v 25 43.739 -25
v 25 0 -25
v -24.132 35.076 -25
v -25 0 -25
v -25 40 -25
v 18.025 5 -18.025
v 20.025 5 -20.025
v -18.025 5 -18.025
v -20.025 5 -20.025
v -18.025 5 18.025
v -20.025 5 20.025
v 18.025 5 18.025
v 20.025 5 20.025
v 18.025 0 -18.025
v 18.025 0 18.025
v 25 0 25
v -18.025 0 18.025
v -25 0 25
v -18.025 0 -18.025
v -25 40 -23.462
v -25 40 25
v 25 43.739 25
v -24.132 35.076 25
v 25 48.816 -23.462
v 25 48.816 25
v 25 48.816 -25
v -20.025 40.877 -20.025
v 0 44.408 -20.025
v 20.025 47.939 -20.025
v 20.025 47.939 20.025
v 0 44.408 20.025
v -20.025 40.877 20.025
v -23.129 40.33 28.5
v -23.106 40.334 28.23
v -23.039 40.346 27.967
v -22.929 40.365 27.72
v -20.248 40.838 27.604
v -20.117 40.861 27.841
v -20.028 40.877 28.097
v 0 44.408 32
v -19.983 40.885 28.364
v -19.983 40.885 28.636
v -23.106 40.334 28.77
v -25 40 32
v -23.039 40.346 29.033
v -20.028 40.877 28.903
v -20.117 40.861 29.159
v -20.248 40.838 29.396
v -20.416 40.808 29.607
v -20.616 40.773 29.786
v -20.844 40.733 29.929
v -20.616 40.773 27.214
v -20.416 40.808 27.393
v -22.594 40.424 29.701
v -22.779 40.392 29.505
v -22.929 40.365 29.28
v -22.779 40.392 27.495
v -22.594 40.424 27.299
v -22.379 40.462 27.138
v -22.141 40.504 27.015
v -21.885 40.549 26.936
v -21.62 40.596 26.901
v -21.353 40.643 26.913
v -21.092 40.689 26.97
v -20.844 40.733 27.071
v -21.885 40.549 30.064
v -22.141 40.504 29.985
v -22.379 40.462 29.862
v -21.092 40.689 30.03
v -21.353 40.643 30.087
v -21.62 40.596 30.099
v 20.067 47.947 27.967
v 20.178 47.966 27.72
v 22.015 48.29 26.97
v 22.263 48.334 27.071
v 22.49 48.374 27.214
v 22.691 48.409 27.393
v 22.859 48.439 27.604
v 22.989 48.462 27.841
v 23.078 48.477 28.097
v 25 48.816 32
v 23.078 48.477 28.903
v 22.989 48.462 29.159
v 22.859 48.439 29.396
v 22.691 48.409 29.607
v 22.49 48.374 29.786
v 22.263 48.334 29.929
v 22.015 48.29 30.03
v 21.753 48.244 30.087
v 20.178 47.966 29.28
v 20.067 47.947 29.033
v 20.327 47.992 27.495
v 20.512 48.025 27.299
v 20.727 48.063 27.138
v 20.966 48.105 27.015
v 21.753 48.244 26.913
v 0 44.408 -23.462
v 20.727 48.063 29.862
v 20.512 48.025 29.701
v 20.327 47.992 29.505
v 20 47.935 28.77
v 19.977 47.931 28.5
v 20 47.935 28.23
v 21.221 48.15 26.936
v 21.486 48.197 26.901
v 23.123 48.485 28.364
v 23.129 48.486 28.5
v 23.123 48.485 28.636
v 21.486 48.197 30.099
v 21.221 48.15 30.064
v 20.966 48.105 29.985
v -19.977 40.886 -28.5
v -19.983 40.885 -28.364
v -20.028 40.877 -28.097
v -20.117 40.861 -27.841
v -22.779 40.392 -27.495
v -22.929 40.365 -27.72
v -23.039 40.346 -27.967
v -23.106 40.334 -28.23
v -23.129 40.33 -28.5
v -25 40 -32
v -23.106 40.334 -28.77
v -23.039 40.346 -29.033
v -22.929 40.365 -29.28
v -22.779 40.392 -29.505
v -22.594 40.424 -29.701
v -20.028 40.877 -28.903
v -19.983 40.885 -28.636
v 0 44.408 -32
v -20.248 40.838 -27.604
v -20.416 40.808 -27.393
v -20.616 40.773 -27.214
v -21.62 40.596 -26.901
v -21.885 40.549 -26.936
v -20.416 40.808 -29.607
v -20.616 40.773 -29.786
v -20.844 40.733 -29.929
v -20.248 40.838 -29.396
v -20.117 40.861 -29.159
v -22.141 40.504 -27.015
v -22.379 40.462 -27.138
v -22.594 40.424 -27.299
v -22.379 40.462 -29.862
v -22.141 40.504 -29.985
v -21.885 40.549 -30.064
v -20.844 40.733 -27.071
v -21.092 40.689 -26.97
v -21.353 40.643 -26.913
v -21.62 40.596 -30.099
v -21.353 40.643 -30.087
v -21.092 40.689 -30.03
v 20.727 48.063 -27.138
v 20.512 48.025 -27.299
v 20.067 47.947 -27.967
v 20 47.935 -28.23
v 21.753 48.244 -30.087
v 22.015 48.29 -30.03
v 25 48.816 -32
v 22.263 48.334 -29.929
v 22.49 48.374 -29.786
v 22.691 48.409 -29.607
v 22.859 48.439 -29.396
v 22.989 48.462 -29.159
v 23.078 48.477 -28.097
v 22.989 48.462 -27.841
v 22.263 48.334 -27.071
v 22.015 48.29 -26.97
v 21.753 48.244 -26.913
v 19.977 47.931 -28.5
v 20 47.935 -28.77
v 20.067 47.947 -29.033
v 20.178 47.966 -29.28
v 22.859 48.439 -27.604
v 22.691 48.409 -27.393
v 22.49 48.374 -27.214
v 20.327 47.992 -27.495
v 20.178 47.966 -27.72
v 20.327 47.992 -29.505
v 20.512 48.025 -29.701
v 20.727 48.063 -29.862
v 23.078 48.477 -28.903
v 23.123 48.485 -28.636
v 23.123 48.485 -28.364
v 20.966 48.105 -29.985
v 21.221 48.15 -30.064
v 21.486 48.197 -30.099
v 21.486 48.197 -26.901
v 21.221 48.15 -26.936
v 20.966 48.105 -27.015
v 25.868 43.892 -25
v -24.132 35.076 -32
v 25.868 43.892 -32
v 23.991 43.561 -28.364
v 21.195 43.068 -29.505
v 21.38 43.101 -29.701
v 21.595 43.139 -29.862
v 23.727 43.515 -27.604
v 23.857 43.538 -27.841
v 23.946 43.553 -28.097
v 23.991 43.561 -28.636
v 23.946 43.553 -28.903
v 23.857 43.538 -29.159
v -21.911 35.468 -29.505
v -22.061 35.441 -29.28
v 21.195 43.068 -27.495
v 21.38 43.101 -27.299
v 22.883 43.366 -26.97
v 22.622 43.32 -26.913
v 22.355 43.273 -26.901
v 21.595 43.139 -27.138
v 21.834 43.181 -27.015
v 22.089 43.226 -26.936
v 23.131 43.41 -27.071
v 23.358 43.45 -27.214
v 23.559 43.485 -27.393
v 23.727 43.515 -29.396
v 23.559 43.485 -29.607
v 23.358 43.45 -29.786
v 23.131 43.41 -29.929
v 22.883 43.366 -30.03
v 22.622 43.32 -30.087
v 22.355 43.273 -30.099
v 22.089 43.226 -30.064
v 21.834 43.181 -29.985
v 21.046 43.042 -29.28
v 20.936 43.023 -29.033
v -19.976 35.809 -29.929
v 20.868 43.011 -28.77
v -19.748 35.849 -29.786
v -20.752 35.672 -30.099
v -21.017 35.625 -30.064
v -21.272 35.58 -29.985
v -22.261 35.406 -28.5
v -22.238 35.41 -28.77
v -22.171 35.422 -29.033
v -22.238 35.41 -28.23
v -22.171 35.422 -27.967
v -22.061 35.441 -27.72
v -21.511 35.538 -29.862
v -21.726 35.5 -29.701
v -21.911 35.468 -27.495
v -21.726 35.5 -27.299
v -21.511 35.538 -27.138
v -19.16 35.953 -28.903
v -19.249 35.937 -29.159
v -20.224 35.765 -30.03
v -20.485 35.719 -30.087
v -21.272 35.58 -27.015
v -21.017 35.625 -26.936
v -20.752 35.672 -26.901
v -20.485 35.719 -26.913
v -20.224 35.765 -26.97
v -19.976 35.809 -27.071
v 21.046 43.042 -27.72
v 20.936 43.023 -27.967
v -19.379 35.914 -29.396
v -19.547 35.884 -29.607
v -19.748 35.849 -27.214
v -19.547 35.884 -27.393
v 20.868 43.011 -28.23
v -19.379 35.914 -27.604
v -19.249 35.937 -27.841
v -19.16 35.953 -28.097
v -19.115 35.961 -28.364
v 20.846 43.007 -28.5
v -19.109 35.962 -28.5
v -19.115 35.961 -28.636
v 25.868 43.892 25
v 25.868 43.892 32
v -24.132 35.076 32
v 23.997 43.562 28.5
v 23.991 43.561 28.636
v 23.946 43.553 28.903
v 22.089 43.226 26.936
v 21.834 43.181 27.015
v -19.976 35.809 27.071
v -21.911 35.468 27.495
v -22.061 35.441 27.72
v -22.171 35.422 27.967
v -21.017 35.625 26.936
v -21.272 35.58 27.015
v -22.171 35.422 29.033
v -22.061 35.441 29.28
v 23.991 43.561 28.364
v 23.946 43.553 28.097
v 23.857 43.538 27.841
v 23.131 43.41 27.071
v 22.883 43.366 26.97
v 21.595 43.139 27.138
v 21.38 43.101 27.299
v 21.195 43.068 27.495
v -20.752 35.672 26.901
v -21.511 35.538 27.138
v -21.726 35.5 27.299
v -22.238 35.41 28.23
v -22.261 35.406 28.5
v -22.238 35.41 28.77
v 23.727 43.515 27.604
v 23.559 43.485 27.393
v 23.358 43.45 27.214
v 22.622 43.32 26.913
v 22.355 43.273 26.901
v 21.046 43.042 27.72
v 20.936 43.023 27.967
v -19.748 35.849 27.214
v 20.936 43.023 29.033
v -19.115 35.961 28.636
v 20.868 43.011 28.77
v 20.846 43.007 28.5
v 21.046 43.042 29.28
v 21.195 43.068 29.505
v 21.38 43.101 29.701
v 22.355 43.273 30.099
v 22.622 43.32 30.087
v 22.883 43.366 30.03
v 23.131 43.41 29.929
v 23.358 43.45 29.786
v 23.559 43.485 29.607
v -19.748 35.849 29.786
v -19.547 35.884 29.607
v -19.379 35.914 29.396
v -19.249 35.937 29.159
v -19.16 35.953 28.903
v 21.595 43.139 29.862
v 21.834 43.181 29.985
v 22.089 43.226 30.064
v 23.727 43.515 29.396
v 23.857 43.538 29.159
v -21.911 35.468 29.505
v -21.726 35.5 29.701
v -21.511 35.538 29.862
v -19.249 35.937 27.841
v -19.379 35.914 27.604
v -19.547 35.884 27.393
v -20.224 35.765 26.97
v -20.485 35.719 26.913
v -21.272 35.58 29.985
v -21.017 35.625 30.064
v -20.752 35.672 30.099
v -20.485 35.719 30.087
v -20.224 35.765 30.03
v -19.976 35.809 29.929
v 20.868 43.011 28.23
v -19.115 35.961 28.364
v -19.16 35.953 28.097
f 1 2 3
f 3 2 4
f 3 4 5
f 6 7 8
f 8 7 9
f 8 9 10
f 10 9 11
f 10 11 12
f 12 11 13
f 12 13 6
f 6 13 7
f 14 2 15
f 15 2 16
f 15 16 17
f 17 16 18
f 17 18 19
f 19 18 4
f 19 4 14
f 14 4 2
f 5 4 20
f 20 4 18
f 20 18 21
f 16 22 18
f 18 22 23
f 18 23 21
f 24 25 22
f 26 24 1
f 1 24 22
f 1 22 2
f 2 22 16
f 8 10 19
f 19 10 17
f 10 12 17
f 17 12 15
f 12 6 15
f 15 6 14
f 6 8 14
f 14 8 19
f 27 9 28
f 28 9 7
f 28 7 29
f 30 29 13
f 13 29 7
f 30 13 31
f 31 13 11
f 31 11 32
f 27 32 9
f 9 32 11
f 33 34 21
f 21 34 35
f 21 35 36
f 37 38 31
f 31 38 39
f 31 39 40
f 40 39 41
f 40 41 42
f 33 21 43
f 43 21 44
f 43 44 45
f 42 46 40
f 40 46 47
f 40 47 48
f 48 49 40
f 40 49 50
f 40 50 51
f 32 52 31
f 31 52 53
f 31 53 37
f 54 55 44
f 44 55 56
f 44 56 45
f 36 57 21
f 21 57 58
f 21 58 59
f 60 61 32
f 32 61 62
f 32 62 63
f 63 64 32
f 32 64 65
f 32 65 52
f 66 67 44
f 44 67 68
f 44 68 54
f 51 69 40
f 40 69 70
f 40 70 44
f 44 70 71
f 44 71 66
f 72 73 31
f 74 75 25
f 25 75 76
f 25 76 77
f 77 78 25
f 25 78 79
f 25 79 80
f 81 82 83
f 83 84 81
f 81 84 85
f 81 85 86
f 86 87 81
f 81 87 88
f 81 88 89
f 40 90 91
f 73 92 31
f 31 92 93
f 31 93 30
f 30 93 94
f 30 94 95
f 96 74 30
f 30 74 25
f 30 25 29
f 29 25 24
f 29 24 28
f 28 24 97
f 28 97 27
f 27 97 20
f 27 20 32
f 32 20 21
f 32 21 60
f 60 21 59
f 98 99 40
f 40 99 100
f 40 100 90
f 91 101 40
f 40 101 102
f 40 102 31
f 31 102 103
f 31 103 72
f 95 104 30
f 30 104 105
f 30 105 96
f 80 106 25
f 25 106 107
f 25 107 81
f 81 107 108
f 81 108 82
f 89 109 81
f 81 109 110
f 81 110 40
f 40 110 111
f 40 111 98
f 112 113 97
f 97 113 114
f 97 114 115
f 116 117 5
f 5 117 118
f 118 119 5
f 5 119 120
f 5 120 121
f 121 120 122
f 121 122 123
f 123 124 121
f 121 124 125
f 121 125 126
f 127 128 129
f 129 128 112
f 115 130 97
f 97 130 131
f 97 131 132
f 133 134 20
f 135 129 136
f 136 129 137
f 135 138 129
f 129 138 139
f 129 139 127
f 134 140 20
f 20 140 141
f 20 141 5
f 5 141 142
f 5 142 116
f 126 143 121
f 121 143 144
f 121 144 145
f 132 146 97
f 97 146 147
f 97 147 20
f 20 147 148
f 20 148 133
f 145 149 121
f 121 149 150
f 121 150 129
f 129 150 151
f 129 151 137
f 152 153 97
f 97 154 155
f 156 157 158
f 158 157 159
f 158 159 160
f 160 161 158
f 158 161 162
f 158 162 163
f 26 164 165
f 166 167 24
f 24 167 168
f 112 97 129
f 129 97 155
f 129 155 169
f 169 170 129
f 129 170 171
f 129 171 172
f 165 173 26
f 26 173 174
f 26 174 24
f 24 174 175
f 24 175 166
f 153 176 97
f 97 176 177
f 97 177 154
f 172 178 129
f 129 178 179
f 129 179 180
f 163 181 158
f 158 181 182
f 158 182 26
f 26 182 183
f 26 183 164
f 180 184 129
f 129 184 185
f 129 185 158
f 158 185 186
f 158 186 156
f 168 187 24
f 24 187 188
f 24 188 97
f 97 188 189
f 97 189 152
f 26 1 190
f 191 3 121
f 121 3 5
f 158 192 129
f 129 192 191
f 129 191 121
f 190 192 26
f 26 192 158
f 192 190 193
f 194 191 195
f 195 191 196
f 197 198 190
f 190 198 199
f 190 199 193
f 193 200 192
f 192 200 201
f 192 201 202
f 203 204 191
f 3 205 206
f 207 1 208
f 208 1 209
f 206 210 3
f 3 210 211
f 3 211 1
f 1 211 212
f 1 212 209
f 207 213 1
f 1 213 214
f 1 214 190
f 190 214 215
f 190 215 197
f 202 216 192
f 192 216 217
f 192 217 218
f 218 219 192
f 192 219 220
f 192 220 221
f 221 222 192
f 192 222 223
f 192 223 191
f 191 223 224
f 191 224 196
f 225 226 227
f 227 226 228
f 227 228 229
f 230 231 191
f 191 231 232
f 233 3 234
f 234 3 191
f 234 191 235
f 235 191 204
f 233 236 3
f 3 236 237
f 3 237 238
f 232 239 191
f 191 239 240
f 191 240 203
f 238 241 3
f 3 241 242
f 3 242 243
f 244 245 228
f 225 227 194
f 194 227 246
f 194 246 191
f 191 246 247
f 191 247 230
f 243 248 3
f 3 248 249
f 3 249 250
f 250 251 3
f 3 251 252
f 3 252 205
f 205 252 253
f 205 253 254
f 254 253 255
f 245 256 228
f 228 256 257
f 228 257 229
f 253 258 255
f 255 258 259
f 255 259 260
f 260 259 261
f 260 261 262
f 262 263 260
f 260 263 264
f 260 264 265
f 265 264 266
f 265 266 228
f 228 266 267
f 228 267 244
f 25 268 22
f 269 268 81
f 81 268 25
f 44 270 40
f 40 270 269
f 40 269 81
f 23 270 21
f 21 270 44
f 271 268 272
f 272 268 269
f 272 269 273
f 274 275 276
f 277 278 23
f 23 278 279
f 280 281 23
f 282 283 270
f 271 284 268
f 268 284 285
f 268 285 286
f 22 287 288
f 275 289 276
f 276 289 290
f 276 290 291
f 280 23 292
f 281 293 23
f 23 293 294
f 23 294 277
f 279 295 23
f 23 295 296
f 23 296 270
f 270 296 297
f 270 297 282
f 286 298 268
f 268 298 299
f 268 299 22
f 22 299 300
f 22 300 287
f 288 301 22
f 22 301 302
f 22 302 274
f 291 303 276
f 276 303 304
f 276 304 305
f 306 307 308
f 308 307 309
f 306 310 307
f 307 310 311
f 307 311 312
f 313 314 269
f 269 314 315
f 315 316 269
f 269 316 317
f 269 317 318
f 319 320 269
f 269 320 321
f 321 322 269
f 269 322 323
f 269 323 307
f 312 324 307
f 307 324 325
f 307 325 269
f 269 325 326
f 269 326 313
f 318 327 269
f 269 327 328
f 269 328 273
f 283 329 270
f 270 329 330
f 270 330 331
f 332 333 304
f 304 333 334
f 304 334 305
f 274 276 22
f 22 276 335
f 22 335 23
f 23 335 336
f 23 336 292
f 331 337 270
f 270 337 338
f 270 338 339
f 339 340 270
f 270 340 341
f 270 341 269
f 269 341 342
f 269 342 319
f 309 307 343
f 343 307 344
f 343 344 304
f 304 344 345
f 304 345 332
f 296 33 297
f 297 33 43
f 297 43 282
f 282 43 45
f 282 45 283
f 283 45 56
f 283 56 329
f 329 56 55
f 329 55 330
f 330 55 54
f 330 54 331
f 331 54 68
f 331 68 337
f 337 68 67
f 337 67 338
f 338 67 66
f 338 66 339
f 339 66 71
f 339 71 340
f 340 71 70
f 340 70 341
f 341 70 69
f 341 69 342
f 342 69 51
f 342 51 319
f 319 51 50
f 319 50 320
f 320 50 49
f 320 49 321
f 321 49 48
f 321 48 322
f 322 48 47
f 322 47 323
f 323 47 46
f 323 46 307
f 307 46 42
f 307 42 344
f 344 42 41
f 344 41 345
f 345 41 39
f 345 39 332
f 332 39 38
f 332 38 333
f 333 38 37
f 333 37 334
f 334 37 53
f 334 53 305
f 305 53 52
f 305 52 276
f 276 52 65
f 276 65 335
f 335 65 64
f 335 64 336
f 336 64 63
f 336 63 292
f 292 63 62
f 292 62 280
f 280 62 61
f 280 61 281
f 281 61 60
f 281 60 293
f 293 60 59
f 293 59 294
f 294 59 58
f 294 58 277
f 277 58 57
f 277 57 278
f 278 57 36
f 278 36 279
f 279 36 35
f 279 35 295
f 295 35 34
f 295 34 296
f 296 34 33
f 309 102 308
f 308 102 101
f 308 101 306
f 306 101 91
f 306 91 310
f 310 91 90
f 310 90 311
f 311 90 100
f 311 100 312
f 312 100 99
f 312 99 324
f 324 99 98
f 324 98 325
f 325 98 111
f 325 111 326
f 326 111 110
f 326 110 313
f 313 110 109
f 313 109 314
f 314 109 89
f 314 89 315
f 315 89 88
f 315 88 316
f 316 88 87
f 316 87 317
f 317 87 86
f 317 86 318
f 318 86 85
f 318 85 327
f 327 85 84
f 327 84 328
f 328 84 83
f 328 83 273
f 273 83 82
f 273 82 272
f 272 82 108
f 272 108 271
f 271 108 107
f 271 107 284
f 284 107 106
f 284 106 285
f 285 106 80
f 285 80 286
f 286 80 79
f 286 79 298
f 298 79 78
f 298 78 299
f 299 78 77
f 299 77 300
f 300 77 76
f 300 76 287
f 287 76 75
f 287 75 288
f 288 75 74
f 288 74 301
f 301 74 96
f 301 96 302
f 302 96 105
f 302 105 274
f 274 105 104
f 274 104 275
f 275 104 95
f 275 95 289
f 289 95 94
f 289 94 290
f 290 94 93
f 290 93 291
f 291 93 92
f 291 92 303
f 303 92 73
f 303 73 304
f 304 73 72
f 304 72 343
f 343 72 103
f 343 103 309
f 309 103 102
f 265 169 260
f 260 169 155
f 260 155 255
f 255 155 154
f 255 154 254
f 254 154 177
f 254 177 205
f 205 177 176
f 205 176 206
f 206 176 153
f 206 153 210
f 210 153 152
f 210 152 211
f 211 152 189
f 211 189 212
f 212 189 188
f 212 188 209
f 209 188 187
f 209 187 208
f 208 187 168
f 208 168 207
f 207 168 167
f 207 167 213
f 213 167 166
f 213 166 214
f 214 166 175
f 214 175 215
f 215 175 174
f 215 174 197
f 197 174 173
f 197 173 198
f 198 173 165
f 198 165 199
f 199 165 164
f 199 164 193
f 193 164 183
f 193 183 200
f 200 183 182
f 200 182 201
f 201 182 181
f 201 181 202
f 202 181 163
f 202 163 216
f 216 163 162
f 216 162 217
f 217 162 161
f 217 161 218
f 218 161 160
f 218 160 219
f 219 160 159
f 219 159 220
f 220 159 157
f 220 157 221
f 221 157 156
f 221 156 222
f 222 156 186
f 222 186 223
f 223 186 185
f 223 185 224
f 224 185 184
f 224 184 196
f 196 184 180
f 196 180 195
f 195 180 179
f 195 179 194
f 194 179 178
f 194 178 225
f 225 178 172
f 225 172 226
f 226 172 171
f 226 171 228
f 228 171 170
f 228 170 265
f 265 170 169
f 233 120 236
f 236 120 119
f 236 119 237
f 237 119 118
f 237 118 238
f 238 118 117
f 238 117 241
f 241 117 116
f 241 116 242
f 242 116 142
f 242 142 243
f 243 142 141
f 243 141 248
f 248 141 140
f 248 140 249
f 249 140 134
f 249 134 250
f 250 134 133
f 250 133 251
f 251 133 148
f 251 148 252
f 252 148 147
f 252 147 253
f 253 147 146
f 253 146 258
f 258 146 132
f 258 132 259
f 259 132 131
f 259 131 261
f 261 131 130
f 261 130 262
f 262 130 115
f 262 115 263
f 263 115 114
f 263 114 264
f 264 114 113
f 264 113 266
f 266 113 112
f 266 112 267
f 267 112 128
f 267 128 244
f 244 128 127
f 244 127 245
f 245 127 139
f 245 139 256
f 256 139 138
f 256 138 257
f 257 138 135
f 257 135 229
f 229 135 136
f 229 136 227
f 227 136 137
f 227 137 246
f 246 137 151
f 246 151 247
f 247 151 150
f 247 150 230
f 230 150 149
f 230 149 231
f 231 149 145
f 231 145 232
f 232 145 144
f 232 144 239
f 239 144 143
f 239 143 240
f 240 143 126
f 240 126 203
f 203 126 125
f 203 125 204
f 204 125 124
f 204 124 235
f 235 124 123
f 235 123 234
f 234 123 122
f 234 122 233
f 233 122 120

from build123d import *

# Parameters (mm, degrees)
SKETCH2_W             = 50
SKETCH2_H             = 50
SKETCH2_W_2           = 36.05
SKETCH2_H_2           = 36.05
BOSS_EXTRUDE2_DEPTH   = 5
SKETCH1_W             = 50
SKETCH1_H             = 50
SKETCH1_W_2           = 40.05
SKETCH1_H_2           = 40.05
BOSS_EXTRUDE4_DEPTH   = 40
BOSS_EXTRUDE5_START   = -25
BOSS_EXTRUDE5_DEPTH   = 50
BOSS_EXTRUDE5_2_DEPTH = 4.975
BOSS_EXTRUDE5_START_2 = 20.025
BOSS_EXTRUDE5_3_DEPTH = 4.975
SKETCH7_W             = 50.771330761
SKETCH7_H             = 7
BOSS_EXTRUDE6_DEPTH   = 5
SKETCH8_R             = 1.6
CUT_EXTRUDE1_DEPTH    = 5


# Read off the part's stored shape, not the designer's step: Boss-Extrude5
with BuildPart() as part:
    # Sketch2 → Boss-Extrude2 (new body)
    with BuildSketch(Plane(origin=(0, 0, 0), x_dir=(1, 0, 0), z_dir=(0, 1, 0))):
        Rectangle(SKETCH2_W, SKETCH2_H)
        Rectangle(SKETCH2_W_2, SKETCH2_H_2, mode=Mode.SUBTRACT)
    extrude(amount=BOSS_EXTRUDE2_DEPTH)

    # Sketch1 → Boss-Extrude4 (add)
    with BuildSketch(Plane(origin=(0, 0, 0), x_dir=(1, 0, 0), z_dir=(0, 1, 0))):
        Rectangle(SKETCH1_W, SKETCH1_H)
        Rectangle(SKETCH1_W_2, SKETCH1_H_2, mode=Mode.SUBTRACT)
    extrude(amount=BOSS_EXTRUDE4_DEPTH)

    # Boss-Extrude5 outline → Boss-Extrude5 (add)
    with BuildSketch(Plane.XY.offset(BOSS_EXTRUDE5_START)):
        Polygon((25, 40), (25, 48.81635), (20.025, 47.939123175), (20.025, 40), align=None)
        Polygon((-20.025, 40), (-20.025, 40.877226825), (-25, 40), align=None)
    extrude(amount=BOSS_EXTRUDE5_DEPTH)

    # Boss-Extrude5 2 outline → Boss-Extrude5 2 (add)
    with BuildSketch(Plane.XY.offset(BOSS_EXTRUDE5_START)):
        Polygon((20.025, 40), (20.025, 47.939123175), (-20.025, 40.877226825), (-20.025, 40), align=None)
    extrude(amount=BOSS_EXTRUDE5_2_DEPTH)

    # Boss-Extrude5 3 outline → Boss-Extrude5 3 (add)
    with BuildSketch(Plane.XY.offset(BOSS_EXTRUDE5_START_2)):
        Polygon((20.025, 40), (20.025, 47.939123175), (-20.025, 40.877226825), (-20.025, 40), align=None)
    extrude(amount=BOSS_EXTRUDE5_3_DEPTH)

    # Sketch7 → Boss-Extrude6 (add)
    with BuildSketch(Plane(origin=(-7.59424597, 43.069104391, 0), x_dir=(0.984807749763281, 0.17364819609251012, 0), z_dir=(-0.17364819609251012, 0.984807749763281, 0))):
        with Locations((7.71139948, 28.5)):
            Rectangle(SKETCH7_W, SKETCH7_H)
        with Locations((7.71139948, -28.5)):
            Rectangle(SKETCH7_W, SKETCH7_H)
    extrude(amount=-BOSS_EXTRUDE6_DEPTH)

    # Sketch8 → Cut-Extrude1 (cut)
    with BuildSketch(Plane(origin=(-7.59424597, 43.069104391, 0), x_dir=(0.984807749763281, 0.17364819609251012, 0), z_dir=(-0.17364819609251012, 0.984807749763281, 0))):
        with Locations(Location((-14.1742659, -28.5, 0), (0, 0, 180))):
            Circle(SKETCH8_R)
        with Locations((29.597064861, -28.5)):
            Circle(SKETCH8_R)
        with Locations(Location((29.597064861, 28.5, 0), (0, 0, 180))):
            Circle(SKETCH8_R)
        with Locations((-14.1742659, 28.5)):
            Circle(SKETCH8_R)
    extrude(amount=-CUT_EXTRUDE1_DEPTH, mode=Mode.SUBTRACT)


solid = part.part
